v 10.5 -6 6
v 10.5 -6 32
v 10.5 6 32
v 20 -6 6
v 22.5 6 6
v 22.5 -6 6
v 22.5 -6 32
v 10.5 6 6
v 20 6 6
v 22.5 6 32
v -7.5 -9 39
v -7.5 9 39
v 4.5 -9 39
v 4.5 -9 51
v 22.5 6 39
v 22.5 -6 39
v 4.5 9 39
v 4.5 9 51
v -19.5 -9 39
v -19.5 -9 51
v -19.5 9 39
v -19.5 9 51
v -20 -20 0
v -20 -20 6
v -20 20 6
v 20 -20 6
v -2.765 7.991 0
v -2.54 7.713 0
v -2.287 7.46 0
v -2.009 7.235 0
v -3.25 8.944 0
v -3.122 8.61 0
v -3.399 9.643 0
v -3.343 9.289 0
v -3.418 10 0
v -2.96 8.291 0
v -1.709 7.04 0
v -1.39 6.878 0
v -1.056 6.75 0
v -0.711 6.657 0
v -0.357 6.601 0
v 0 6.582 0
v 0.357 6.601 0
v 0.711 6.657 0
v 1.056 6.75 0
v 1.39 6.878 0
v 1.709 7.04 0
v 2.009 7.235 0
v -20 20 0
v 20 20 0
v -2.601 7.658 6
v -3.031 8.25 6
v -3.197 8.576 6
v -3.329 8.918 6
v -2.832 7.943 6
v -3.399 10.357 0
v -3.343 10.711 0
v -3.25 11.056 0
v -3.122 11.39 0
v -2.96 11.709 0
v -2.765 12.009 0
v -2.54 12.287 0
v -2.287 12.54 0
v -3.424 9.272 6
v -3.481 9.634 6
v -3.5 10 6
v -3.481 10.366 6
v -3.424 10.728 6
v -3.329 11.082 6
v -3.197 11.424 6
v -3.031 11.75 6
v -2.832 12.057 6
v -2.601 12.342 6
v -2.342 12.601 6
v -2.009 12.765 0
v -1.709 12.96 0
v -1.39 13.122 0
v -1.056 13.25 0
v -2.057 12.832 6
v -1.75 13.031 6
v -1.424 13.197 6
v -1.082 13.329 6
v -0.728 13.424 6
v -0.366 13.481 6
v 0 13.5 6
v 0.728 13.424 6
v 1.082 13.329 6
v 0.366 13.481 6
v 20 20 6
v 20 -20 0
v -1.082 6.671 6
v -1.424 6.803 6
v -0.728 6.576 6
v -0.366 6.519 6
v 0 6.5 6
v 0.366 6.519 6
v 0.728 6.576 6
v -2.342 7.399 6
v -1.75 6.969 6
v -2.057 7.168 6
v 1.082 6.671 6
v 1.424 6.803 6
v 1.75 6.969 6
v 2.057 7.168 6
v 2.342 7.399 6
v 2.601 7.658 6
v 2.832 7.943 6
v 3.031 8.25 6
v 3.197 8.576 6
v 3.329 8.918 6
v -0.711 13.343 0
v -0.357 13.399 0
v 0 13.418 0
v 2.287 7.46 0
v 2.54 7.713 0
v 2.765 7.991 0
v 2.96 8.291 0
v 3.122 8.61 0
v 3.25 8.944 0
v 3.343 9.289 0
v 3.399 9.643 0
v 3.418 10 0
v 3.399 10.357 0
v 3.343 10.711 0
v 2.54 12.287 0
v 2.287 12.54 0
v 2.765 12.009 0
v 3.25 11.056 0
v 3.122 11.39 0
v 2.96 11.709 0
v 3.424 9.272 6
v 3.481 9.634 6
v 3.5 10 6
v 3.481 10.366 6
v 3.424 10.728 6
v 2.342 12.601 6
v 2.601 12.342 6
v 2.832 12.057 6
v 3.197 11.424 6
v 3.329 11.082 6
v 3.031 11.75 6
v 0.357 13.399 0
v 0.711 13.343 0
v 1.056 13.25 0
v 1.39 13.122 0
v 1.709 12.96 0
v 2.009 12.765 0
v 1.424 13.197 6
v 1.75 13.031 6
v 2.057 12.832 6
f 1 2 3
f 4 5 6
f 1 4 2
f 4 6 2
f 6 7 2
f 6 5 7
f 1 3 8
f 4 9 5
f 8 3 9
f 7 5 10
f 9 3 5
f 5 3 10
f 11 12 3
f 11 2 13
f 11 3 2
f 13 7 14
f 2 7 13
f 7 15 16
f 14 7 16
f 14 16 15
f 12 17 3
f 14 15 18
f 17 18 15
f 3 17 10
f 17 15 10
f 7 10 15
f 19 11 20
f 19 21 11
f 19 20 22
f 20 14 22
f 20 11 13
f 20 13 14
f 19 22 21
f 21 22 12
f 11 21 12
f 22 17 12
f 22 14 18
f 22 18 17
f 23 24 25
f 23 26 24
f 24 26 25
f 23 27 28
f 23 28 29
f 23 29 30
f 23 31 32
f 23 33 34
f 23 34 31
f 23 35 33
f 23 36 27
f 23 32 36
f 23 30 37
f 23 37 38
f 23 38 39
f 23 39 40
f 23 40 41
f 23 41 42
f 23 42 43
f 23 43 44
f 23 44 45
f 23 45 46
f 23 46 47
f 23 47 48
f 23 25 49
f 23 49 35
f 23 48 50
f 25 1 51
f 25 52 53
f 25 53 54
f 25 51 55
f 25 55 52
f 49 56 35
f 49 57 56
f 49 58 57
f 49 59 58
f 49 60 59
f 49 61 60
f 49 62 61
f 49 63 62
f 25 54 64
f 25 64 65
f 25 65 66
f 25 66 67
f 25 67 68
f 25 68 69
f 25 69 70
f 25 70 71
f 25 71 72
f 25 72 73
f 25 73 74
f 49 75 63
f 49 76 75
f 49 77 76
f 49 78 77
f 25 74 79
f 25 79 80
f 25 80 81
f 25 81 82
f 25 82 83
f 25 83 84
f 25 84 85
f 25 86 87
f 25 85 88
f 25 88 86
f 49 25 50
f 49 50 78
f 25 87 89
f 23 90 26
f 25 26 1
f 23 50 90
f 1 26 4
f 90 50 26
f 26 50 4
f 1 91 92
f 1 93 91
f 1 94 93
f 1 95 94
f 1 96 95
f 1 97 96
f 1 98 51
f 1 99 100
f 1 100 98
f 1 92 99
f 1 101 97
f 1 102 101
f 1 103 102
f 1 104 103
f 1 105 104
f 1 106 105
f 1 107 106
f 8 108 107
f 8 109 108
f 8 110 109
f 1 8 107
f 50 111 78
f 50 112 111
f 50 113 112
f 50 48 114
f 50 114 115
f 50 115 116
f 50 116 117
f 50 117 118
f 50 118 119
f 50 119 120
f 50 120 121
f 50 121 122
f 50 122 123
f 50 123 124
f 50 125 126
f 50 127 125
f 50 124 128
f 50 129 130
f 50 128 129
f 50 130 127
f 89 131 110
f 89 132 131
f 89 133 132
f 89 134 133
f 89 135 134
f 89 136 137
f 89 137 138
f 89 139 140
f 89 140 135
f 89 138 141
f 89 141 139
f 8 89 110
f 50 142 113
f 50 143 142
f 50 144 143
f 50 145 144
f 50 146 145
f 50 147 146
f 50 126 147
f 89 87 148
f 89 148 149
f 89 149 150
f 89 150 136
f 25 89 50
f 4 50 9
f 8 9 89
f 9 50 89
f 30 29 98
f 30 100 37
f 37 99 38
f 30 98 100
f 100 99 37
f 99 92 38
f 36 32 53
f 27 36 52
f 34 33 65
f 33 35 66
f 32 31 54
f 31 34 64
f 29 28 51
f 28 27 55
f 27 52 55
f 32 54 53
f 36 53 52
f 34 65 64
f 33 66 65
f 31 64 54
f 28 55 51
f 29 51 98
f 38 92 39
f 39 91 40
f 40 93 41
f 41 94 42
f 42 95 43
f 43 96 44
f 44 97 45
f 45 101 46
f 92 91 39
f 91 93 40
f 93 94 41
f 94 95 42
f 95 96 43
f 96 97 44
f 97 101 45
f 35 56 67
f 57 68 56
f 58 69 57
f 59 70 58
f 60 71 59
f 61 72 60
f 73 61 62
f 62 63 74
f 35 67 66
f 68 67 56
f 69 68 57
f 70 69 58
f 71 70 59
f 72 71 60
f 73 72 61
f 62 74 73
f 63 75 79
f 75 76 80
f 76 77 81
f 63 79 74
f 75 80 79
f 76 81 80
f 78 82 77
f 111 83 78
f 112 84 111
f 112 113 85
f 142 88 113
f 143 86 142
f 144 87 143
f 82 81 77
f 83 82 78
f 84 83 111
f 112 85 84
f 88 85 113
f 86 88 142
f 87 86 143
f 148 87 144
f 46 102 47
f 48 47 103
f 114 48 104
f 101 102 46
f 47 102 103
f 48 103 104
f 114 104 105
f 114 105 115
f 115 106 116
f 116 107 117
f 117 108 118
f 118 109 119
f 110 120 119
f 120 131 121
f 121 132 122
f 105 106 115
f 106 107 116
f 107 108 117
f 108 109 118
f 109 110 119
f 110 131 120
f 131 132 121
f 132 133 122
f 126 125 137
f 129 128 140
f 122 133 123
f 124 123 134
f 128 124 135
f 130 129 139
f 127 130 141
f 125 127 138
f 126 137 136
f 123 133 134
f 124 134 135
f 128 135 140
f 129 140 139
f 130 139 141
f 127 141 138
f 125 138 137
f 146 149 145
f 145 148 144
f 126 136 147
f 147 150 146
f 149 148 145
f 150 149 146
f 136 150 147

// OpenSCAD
// Towel hook with single M3 flat head screw mount
// Units: mm

plate_w = 40;   // width (X)
plate_h = 40;   // height (Y)
plate_t = 6;    // thickness (Z)

hook_depth = 45; // total projection from wall (mm)
hook_thick = 12;
hook_width = 18;
hook_rise = 18;

// Screw hole placed above hook center
screw_center = [0, plate_h/4]; // [x,y] on plate
screw_clear = 3.4;
countersink_top_d = 7;
countersink_angle = 90; // degrees
countersink_h = (countersink_top_d - screw_clear) / 2 / tan(countersink_angle/2 * PI/180);

module cone(d1=10, d2=5, h=5){
    cylinder(h=h, d1=d1, d2=d2, $fn=60);
}

module backplate(){
    // Plate lies in XY plane, thickness along +Z; back at Z=0, front at Z=plate_t
    translate([-plate_w/2, -plate_h/2, 0])
        cube([plate_w, plate_h, plate_t], center=false);
}

module countersunk_hole(){
    cylinder(h=plate_t+0.5, d=screw_clear, $fn=40);
    translate([0,0,plate_t])
        rotate([180,0,0])
            cone(d1=countersink_top_d, d2=screw_clear, h=countersink_h);
}

module hook_arm(){
    base_len = 14;
    // choose arm length so total projection ~ hook_depth
    arm_len = max(hook_depth - (hook_thick*2 + base_len), hook_thick/2);
    z0 = hook_thick/2; // bottom at z=0

    union(){
        hull(){
            translate([0,0,z0]) cube([hook_thick, hook_thick, hook_thick], center=true);
            translate([hook_thick/2 + base_len/2,0,z0]) cube([base_len, hook_thick, hook_thick], center=true);
        }
        hull(){
            translate([hook_thick/2 + base_len/2,0,z0]) cube([base_len, hook_thick, hook_thick], center=true);
            translate([hook_thick/2 + base_len + arm_len/2,0,z0]) cube([arm_len, hook_thick, hook_thick], center=true);
        }
        hull(){
            translate([hook_thick/2 + base_len + arm_len/2,0,z0]) cube([arm_len, hook_thick, hook_thick], center=true);
            translate([hook_thick/2 + base_len + arm_len + hook_thick/2,0,z0 + hook_rise]) cube([hook_thick, hook_width, hook_thick], center=true);
        }
        hull(){
            translate([hook_thick/2 + base_len + arm_len + hook_thick/2,0,z0 + hook_rise]) cube([hook_thick, hook_width, hook_thick], center=true);
            translate([hook_thick/2 + base_len + arm_len + hook_thick/2,0,z0 + hook_rise + hook_thick]) cube([hook_thick, hook_width, hook_thick], center=true);
        }
    }
}

module towel_hook(){
    difference(){
        union(){
            backplate();
            // Rotate hook so it protrudes out from the wall (+Z), keep centered on plate
            base_len = 14;
            arm_len_local = max(hook_depth - (hook_thick*2 + base_len), hook_thick/2);
            hook_extent = hook_thick*2 + base_len + arm_len_local; // approximate front-to-back reach
            translate([hook_extent/2, 0, plate_t])
                rotate([0,-90,0])
                    translate([hook_thick/2, 0, 0]) hook_arm();
        }
        translate([screw_center[0], screw_center[1], 0]) countersunk_hole();
    }
}

towel_hook();
